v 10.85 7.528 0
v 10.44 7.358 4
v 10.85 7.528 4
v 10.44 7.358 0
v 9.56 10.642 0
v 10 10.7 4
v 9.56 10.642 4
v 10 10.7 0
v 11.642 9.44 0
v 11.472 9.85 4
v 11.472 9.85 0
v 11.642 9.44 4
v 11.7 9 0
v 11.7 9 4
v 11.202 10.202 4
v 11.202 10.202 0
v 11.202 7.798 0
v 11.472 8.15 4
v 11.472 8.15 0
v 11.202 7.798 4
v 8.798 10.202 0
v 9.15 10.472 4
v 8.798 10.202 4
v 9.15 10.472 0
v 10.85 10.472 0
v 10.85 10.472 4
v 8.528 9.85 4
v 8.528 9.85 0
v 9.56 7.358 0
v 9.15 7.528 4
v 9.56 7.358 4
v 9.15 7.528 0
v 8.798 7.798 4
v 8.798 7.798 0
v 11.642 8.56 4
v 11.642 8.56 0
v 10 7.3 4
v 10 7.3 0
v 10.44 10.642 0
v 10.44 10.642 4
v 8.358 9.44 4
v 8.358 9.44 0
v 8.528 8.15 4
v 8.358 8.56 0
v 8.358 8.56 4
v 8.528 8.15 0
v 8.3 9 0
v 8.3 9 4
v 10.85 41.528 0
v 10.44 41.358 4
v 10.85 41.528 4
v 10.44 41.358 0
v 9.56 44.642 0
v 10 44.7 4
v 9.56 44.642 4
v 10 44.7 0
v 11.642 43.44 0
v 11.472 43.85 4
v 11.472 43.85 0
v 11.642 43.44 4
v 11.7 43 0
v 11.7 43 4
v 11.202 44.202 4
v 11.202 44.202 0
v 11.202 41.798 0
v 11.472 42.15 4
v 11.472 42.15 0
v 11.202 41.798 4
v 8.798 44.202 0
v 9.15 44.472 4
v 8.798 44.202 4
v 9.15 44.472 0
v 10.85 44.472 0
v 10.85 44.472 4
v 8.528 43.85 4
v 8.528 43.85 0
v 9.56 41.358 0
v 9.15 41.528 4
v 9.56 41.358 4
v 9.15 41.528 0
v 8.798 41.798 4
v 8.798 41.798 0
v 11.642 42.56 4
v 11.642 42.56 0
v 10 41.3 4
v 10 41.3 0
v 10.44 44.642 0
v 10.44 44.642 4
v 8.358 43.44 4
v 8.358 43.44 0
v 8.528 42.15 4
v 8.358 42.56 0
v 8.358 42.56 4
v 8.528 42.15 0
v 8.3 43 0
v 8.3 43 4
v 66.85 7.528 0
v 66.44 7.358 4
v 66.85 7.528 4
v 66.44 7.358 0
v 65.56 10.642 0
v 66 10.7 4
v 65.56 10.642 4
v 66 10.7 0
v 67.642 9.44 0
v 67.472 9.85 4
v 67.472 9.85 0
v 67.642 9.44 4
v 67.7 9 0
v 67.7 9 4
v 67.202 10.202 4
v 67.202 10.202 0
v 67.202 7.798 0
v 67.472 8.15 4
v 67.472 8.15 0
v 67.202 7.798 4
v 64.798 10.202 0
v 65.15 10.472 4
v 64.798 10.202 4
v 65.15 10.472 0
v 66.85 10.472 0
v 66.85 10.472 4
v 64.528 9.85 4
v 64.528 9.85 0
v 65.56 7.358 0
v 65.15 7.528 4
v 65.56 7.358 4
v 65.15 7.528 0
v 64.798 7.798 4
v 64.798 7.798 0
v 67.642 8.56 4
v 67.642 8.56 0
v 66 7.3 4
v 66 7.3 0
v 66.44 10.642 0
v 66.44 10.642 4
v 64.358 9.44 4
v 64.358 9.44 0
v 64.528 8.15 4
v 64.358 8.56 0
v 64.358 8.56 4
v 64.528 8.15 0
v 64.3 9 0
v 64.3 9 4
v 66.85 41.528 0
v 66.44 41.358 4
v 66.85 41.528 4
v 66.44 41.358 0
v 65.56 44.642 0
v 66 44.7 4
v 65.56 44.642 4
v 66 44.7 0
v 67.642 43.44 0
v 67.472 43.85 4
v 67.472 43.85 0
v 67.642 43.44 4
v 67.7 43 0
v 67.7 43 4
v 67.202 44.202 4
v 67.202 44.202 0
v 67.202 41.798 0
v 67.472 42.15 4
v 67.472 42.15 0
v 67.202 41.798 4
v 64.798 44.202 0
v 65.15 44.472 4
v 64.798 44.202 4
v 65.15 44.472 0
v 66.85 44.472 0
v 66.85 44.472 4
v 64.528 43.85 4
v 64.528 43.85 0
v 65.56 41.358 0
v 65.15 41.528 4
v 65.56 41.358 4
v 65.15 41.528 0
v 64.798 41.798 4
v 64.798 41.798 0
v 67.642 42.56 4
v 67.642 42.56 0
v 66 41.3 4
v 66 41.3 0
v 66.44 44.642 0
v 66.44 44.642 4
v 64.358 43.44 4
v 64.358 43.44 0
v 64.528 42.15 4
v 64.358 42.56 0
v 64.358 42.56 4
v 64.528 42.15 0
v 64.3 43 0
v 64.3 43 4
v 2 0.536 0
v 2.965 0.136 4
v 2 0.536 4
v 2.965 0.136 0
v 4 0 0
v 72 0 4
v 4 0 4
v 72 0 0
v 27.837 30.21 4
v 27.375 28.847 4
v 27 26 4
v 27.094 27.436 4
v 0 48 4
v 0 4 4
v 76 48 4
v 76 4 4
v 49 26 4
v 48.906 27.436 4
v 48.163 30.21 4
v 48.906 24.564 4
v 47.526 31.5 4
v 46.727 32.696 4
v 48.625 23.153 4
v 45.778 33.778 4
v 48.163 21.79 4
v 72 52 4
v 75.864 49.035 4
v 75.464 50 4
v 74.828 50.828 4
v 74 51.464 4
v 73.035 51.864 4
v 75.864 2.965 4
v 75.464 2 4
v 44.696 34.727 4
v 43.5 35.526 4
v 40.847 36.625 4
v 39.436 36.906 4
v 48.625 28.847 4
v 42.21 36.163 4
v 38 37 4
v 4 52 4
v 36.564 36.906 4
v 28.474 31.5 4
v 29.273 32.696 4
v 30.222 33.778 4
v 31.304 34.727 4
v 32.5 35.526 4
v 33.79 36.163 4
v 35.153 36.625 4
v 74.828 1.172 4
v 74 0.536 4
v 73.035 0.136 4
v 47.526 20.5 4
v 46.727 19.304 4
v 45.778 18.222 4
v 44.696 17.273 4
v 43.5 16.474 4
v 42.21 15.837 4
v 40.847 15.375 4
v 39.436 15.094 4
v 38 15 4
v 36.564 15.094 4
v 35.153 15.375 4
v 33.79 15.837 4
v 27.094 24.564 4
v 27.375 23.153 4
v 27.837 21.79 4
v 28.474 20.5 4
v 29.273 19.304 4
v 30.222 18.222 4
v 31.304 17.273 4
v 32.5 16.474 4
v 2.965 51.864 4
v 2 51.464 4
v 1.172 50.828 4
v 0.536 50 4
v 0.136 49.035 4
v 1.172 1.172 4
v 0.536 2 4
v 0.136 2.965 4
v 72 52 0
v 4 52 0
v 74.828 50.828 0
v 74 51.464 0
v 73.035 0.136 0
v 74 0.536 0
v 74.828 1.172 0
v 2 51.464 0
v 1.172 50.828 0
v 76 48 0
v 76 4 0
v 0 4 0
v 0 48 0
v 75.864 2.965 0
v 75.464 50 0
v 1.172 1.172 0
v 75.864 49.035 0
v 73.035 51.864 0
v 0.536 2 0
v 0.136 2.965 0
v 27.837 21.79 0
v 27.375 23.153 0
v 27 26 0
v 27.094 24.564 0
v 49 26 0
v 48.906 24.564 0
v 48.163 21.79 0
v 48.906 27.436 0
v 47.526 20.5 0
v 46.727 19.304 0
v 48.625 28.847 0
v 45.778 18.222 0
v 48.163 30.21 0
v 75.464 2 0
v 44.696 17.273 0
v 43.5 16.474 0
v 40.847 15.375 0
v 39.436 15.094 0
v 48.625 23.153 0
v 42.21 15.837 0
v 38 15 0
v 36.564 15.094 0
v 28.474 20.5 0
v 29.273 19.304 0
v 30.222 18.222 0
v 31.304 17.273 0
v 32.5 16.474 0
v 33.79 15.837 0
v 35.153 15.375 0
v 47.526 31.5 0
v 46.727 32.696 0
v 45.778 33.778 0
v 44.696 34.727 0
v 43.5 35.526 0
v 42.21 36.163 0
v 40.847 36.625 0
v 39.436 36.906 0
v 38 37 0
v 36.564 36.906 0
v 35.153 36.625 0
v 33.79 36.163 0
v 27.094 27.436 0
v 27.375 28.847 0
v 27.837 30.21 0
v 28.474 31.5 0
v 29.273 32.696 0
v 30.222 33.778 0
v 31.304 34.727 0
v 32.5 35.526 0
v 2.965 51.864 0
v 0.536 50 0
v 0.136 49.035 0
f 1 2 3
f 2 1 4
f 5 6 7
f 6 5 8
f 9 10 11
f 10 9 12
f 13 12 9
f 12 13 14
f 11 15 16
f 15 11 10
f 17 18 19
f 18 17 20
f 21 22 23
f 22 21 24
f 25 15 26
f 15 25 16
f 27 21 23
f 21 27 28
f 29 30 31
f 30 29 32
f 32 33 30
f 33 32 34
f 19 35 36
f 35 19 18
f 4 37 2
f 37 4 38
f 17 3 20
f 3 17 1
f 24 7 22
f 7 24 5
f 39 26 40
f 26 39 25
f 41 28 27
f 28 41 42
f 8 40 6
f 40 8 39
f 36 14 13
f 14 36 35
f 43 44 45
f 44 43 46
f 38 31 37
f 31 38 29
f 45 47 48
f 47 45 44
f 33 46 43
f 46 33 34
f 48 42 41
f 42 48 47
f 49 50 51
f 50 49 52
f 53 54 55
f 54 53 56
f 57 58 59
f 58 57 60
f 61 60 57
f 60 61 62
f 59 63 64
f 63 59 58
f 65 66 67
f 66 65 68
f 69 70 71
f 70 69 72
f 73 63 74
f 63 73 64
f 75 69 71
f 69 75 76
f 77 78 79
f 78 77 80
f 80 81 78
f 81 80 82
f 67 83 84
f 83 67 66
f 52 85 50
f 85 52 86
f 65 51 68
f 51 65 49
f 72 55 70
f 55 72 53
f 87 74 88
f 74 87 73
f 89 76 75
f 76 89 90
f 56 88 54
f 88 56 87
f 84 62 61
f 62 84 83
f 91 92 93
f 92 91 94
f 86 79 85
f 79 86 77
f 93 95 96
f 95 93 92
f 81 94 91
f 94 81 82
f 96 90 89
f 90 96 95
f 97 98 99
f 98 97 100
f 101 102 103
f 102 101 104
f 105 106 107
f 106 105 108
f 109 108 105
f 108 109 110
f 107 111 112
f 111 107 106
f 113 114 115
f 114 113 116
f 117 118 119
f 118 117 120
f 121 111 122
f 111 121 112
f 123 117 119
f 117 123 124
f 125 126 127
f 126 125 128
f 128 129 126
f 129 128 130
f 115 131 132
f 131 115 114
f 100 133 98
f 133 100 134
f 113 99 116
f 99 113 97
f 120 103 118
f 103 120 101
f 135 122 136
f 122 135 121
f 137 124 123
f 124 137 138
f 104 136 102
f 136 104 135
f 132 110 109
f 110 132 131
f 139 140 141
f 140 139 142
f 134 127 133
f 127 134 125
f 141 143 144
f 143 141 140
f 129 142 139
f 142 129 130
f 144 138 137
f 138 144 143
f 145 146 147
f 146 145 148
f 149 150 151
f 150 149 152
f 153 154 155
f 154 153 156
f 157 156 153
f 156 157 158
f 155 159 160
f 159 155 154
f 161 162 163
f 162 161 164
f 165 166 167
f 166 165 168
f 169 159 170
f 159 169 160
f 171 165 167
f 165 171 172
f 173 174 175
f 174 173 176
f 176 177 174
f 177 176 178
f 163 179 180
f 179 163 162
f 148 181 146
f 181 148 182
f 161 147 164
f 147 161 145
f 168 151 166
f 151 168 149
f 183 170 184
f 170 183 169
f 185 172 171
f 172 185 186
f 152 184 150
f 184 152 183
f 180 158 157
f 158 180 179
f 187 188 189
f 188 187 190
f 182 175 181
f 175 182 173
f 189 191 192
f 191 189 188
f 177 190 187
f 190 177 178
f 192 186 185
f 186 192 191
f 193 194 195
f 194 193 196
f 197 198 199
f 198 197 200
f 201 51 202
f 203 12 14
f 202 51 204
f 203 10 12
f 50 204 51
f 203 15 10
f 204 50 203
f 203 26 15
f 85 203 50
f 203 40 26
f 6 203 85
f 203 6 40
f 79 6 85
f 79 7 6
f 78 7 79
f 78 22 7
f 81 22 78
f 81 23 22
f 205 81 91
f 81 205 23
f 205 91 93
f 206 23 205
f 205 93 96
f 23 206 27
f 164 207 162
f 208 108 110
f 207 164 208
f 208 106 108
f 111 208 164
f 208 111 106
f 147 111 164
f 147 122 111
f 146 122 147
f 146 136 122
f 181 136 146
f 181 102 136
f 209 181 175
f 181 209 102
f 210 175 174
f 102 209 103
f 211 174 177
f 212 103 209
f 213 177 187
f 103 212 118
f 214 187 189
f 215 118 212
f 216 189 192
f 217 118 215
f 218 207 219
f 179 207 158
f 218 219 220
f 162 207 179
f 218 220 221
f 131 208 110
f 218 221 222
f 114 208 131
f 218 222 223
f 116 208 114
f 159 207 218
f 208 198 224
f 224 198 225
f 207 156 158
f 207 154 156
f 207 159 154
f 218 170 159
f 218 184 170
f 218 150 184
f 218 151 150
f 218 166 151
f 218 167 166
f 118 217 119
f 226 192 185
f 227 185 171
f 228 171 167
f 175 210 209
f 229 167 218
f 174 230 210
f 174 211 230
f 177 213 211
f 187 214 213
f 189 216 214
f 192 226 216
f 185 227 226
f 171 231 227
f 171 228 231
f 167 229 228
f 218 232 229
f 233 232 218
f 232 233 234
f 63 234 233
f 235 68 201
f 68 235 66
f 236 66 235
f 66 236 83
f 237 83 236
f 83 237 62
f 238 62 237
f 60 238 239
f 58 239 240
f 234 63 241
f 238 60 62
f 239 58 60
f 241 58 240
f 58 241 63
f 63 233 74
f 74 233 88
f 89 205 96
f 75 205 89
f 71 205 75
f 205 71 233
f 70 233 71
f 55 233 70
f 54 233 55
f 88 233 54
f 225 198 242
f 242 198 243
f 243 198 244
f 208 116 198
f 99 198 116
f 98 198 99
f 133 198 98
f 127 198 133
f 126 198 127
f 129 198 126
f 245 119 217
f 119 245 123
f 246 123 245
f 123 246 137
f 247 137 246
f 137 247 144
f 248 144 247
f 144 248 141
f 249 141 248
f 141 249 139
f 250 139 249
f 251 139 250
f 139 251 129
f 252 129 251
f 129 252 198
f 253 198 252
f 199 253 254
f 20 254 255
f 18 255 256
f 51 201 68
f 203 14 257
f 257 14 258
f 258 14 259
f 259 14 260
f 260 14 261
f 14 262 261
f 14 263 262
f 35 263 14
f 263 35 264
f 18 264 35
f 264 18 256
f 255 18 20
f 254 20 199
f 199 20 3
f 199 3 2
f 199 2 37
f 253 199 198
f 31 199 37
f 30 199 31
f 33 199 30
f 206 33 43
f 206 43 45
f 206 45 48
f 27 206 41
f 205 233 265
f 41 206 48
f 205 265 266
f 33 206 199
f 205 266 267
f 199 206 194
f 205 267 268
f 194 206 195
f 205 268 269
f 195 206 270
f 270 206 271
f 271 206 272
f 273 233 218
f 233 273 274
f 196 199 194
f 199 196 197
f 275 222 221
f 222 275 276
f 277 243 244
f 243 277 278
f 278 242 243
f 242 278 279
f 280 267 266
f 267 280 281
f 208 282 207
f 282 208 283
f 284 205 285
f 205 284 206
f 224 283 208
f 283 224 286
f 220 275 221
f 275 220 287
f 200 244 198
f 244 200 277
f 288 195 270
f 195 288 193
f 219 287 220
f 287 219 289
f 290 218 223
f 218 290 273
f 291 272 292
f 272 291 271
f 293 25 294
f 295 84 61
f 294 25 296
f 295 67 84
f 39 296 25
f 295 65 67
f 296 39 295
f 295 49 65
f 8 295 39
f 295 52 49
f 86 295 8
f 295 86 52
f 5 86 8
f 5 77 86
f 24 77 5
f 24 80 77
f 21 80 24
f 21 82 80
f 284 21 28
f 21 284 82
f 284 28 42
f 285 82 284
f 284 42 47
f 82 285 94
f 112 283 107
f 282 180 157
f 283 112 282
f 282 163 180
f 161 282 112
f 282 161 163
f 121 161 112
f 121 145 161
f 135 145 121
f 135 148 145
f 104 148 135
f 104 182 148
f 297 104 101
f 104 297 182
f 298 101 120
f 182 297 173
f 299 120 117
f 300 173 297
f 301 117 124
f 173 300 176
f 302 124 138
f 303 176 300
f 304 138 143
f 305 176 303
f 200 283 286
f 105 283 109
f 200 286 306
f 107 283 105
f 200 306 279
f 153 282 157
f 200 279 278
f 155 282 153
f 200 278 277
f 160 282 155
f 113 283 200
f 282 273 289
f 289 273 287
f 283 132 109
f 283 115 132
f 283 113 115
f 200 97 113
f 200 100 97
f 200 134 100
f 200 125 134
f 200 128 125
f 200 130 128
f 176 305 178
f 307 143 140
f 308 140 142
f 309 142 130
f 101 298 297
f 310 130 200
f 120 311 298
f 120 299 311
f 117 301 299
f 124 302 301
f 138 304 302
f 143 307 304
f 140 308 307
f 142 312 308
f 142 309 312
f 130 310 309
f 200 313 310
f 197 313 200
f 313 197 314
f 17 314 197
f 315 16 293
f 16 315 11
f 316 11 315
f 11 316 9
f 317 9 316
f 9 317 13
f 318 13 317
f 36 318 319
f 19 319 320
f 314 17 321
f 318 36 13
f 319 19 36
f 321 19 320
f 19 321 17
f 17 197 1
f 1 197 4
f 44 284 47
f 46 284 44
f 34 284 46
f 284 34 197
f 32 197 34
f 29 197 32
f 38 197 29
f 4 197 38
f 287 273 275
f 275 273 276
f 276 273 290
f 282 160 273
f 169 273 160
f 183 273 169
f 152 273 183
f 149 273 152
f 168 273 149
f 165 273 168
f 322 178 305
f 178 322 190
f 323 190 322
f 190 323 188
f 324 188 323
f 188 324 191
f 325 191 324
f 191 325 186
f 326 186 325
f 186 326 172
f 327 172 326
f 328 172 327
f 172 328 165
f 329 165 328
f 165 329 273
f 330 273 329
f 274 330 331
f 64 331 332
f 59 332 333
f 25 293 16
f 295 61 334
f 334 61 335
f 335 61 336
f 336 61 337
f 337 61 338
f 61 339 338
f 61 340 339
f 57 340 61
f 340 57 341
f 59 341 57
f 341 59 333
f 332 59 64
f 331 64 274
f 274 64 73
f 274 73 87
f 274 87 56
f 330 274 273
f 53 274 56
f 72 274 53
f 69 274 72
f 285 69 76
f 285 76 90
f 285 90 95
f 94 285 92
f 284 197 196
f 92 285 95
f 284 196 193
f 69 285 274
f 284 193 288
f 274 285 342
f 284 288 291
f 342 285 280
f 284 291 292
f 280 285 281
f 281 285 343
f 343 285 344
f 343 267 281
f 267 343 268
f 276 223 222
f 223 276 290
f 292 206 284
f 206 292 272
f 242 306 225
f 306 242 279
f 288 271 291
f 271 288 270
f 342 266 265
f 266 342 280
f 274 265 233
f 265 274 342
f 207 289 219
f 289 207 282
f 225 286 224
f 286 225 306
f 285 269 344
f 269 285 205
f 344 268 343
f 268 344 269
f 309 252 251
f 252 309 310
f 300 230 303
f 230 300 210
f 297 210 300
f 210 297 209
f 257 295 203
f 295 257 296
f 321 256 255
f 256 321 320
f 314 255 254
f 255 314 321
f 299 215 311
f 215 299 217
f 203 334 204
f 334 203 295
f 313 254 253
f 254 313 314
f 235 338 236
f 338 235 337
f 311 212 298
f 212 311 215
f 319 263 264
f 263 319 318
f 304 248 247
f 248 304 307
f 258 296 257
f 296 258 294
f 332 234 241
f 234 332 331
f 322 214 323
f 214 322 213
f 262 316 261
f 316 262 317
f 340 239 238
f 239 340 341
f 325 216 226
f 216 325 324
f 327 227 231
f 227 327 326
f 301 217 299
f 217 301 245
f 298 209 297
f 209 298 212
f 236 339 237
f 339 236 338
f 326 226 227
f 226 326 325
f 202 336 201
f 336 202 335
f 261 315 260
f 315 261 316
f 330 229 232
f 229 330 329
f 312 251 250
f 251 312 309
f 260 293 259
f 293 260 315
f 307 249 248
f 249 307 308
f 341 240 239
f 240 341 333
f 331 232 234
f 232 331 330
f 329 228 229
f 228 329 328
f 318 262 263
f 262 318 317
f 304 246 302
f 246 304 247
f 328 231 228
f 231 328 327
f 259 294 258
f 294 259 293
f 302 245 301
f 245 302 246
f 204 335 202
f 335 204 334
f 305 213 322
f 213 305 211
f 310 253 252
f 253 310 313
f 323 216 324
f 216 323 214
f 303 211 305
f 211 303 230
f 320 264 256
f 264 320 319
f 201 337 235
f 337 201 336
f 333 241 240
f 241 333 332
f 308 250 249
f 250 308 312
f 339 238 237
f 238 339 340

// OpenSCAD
// file: 00_parameters.scad
// TenderCells DoorCell V1 shared parameters
// Units: millimeters

overall_w = 438;
overall_h = 368;
frame_depth = 56;

clear_w = 242;
clear_h = 312;

rail_thick = 32;
jamb_w = 48;
motor_jamb_w = 78;

// Printability targets
target_bed_xy = 220;
comfortable_part_max = 180;

// Modular frame split dimensions
top_seg_len = overall_w / 3;
bottom_seg_len = overall_w / 3;
left_jamb_seg_h = overall_h / 2;
right_lower_h = 118;
right_motor_h = 156;
right_upper_h = overall_h - right_lower_h - right_motor_h;

// Low-cost electronics envelope used by DoorCell V1.4.
// These dimensions are based on common generic modules, not a custom PCB.
esp32_board = [58, 31, 8];
drv8871_board = [31, 26, 7];
current_sensor_board = [26, 22, 7];
lm2596_board = [44, 22, 14];
inline_fuse_body = [45, 15, 14];
cn3065_board = [44, 24, 8];
electronics_clearance = 1.5;
controller_wall = 3;
controller_box_w = 170;
controller_box_h = 115;
controller_box_d = 46;
controller_lid_insert_offset = 11;
controller_m12_gland_d = 12.8;
controller_m10_gland_d = 10.6;
controller_m8_gland_d = 8.4;
controller_button_d = 16.2;

// Brass heat-set/push-in insert features.
insert_post_d = 8.0;
insert_post_h = 8.0;
insert_pilot_d = 4.6;
insert_pilot_depth = 6.5;
hold_down_screw_clearance = 3.4;

// Motor envelope for common 25GA/JGA25-370 gearmotors with optional encoder.
motor_body_d = 25.0;
motor_body_clearance_d = 27.2;
motor_body_len = 65;
motor_encoder_clearance = 16;
motor_mount_plate = [72, 92, 12];
motor_mount_cradle = [54, 74, 28];

// Optional solar add-on.
solar_panel_w = 145;
solar_panel_h = 145;
solar_panel_t = 4.0;
solar_panel_frame_border = 10;
solar_panel_frame_w = solar_panel_w + 2*solar_panel_frame_border;
solar_panel_frame_h = solar_panel_h + 2*solar_panel_frame_border;
solar_panel_back_depth = 14;
solar_panel_lip_overlap = 3;
solar_ball_d = 22;
solar_ball_socket_clearance = 0.45;
solar_mount_m5 = 5.4;

// Tongue-and-groove frame joints
// Fit target: common FDM printers with PETG/ASA.
// Clearance is per side, so sockets add 2x this value.
tongue_len = 18;
tongue_w = 22;
tongue_z = 10;
tongue_clearance_side = 0.25;
tongue_socket_depth_extra = 0.60;

door_w = 270;
door_h = 326;
door_t = 8;

track_gap = 11;
track_depth = 12;

// Rack-and-pinion drive
// Metric module gear math:
// circular_pitch = PI * module
// pitch_diameter = module * tooth_count
// outside_diameter = module * (tooth_count + 2)
// root_diameter = module * (tooth_count - 2.5)
gear_module = 2.0;
pressure_angle = 20;
gear_backlash = 0.20; // mm removed from rack tooth thickness at pitch line

pinion_teeth = 16;
pinion_pitch_d = gear_module * pinion_teeth;
pinion_pitch_radius = pinion_pitch_d / 2;
pinion_outer_d = gear_module * (pinion_teeth + 2);
pinion_outer_radius = pinion_outer_d / 2;
pinion_root_d = gear_module * (pinion_teeth - 2.5);
pinion_root_radius = pinion_root_d / 2;
pinion_thick = 12;
shaft_d = 6.2;

rack_tooth_count = 15;
rack_circular_pitch = 3.141592653589793 * gear_module;
rack_len = rack_circular_pitch * rack_tooth_count;
rack_w = 18;
rack_t = 6;
rack_addendum = gear_module;
rack_dedendum = 1.25 * gear_module;
rack_tooth_h = rack_addendum + rack_dedendum;
rack_pitch_line_z = rack_dedendum;
rack_tooth_pitch_thickness = rack_circular_pitch / 2 - gear_backlash;
rack_tooth_top_w = rack_tooth_pitch_thickness - 2 * rack_addendum * tan(pressure_angle);
rack_tooth_root_w = rack_tooth_pitch_thickness + 2 * rack_dedendum * tan(pressure_angle);

screw_m3 = 3.4;
screw_m4 = 4.5;
insert_m3 = 4.6;

eps = 0.01;

module rounded_box(size=[10,10,10], r=2) {
  hull() {
    translate([r,r,0]) cylinder(h=size[2], r=r, $fn=24);
    translate([size[0]-r,r,0]) cylinder(h=size[2], r=r, $fn=24);
    translate([r,size[1]-r,0]) cylinder(h=size[2], r=r, $fn=24);
    translate([size[0]-r,size[1]-r,0]) cylinder(h=size[2], r=r, $fn=24);
  }
}

module m3_clearance_hole(h=20) {
  cylinder(h=h, d=screw_m3, $fn=24);
}

module m4_clearance_hole(h=20) {
  cylinder(h=h, d=screw_m4, $fn=24);
}

module heat_insert_hole(h=6) {
  cylinder(h=h, d=insert_m3, $fn=24);
}

module heat_insert_post(h=insert_post_h, d=insert_post_d) {
  difference() {
    cylinder(h=h, d=d, $fn=32);
    translate([0,0,h-insert_pilot_depth+eps])
      cylinder(h=insert_pilot_depth+eps, d=insert_pilot_d, $fn=24);
  }
}

module m3_hold_down_slot(length=10, h=4) {
  hull() {
    translate([-length/2,0,0]) cylinder(h=h, d=hold_down_screw_clearance, $fn=20);
    translate([ length/2,0,0]) cylinder(h=h, d=hold_down_screw_clearance, $fn=20);
  }
}

module rail_channel(length=100) {
  cube([length, track_gap, track_depth]);
}

module frame_tongue_x() {
  rounded_box([tongue_len, tongue_w, tongue_z], r=1.5);
}

module frame_socket_x() {
  cube([
    tongue_len + tongue_socket_depth_extra,
    tongue_w + 2*tongue_clearance_side,
    tongue_z + 2*tongue_clearance_side
  ]);
}

module frame_tongue_y() {
  rounded_box([tongue_w, tongue_len, tongue_z], r=1.5);
}

module frame_socket_y() {
  cube([
    tongue_w + 2*tongue_clearance_side,
    tongue_len + tongue_socket_depth_extra,
    tongue_z + 2*tongue_clearance_side
  ]);
}

module rack_teeth(len=rack_len) {
  teeth = floor(len / rack_circular_pitch);
  for (i=[0:teeth-1]) {
    center = i*rack_circular_pitch + rack_circular_pitch/2;
    translate([0, 0, rack_t-0.20])
      linear_extrude(height=rack_w)
        polygon(points=[
          [center - rack_tooth_root_w/2, 0],
          [center + rack_tooth_root_w/2, 0],
          [center + rack_tooth_top_w/2, rack_tooth_h],
          [center - rack_tooth_top_w/2, rack_tooth_h]
        ]);
  }
}

function polar_point(r, a) = [r * cos(a), r * sin(a)];
// main file
include <00_parameters.scad>

difference() {
  rounded_box([76, 52, 4], r=4);

  // Finger pull
  translate([38, 26, -eps]) cylinder(h=8, d=22, $fn=48);

  // Mount holes
  for (x=[10, 66], y=[9, 43]) {
    translate([x,y,-eps]) m3_clearance_hole(h=8);
  }
}
